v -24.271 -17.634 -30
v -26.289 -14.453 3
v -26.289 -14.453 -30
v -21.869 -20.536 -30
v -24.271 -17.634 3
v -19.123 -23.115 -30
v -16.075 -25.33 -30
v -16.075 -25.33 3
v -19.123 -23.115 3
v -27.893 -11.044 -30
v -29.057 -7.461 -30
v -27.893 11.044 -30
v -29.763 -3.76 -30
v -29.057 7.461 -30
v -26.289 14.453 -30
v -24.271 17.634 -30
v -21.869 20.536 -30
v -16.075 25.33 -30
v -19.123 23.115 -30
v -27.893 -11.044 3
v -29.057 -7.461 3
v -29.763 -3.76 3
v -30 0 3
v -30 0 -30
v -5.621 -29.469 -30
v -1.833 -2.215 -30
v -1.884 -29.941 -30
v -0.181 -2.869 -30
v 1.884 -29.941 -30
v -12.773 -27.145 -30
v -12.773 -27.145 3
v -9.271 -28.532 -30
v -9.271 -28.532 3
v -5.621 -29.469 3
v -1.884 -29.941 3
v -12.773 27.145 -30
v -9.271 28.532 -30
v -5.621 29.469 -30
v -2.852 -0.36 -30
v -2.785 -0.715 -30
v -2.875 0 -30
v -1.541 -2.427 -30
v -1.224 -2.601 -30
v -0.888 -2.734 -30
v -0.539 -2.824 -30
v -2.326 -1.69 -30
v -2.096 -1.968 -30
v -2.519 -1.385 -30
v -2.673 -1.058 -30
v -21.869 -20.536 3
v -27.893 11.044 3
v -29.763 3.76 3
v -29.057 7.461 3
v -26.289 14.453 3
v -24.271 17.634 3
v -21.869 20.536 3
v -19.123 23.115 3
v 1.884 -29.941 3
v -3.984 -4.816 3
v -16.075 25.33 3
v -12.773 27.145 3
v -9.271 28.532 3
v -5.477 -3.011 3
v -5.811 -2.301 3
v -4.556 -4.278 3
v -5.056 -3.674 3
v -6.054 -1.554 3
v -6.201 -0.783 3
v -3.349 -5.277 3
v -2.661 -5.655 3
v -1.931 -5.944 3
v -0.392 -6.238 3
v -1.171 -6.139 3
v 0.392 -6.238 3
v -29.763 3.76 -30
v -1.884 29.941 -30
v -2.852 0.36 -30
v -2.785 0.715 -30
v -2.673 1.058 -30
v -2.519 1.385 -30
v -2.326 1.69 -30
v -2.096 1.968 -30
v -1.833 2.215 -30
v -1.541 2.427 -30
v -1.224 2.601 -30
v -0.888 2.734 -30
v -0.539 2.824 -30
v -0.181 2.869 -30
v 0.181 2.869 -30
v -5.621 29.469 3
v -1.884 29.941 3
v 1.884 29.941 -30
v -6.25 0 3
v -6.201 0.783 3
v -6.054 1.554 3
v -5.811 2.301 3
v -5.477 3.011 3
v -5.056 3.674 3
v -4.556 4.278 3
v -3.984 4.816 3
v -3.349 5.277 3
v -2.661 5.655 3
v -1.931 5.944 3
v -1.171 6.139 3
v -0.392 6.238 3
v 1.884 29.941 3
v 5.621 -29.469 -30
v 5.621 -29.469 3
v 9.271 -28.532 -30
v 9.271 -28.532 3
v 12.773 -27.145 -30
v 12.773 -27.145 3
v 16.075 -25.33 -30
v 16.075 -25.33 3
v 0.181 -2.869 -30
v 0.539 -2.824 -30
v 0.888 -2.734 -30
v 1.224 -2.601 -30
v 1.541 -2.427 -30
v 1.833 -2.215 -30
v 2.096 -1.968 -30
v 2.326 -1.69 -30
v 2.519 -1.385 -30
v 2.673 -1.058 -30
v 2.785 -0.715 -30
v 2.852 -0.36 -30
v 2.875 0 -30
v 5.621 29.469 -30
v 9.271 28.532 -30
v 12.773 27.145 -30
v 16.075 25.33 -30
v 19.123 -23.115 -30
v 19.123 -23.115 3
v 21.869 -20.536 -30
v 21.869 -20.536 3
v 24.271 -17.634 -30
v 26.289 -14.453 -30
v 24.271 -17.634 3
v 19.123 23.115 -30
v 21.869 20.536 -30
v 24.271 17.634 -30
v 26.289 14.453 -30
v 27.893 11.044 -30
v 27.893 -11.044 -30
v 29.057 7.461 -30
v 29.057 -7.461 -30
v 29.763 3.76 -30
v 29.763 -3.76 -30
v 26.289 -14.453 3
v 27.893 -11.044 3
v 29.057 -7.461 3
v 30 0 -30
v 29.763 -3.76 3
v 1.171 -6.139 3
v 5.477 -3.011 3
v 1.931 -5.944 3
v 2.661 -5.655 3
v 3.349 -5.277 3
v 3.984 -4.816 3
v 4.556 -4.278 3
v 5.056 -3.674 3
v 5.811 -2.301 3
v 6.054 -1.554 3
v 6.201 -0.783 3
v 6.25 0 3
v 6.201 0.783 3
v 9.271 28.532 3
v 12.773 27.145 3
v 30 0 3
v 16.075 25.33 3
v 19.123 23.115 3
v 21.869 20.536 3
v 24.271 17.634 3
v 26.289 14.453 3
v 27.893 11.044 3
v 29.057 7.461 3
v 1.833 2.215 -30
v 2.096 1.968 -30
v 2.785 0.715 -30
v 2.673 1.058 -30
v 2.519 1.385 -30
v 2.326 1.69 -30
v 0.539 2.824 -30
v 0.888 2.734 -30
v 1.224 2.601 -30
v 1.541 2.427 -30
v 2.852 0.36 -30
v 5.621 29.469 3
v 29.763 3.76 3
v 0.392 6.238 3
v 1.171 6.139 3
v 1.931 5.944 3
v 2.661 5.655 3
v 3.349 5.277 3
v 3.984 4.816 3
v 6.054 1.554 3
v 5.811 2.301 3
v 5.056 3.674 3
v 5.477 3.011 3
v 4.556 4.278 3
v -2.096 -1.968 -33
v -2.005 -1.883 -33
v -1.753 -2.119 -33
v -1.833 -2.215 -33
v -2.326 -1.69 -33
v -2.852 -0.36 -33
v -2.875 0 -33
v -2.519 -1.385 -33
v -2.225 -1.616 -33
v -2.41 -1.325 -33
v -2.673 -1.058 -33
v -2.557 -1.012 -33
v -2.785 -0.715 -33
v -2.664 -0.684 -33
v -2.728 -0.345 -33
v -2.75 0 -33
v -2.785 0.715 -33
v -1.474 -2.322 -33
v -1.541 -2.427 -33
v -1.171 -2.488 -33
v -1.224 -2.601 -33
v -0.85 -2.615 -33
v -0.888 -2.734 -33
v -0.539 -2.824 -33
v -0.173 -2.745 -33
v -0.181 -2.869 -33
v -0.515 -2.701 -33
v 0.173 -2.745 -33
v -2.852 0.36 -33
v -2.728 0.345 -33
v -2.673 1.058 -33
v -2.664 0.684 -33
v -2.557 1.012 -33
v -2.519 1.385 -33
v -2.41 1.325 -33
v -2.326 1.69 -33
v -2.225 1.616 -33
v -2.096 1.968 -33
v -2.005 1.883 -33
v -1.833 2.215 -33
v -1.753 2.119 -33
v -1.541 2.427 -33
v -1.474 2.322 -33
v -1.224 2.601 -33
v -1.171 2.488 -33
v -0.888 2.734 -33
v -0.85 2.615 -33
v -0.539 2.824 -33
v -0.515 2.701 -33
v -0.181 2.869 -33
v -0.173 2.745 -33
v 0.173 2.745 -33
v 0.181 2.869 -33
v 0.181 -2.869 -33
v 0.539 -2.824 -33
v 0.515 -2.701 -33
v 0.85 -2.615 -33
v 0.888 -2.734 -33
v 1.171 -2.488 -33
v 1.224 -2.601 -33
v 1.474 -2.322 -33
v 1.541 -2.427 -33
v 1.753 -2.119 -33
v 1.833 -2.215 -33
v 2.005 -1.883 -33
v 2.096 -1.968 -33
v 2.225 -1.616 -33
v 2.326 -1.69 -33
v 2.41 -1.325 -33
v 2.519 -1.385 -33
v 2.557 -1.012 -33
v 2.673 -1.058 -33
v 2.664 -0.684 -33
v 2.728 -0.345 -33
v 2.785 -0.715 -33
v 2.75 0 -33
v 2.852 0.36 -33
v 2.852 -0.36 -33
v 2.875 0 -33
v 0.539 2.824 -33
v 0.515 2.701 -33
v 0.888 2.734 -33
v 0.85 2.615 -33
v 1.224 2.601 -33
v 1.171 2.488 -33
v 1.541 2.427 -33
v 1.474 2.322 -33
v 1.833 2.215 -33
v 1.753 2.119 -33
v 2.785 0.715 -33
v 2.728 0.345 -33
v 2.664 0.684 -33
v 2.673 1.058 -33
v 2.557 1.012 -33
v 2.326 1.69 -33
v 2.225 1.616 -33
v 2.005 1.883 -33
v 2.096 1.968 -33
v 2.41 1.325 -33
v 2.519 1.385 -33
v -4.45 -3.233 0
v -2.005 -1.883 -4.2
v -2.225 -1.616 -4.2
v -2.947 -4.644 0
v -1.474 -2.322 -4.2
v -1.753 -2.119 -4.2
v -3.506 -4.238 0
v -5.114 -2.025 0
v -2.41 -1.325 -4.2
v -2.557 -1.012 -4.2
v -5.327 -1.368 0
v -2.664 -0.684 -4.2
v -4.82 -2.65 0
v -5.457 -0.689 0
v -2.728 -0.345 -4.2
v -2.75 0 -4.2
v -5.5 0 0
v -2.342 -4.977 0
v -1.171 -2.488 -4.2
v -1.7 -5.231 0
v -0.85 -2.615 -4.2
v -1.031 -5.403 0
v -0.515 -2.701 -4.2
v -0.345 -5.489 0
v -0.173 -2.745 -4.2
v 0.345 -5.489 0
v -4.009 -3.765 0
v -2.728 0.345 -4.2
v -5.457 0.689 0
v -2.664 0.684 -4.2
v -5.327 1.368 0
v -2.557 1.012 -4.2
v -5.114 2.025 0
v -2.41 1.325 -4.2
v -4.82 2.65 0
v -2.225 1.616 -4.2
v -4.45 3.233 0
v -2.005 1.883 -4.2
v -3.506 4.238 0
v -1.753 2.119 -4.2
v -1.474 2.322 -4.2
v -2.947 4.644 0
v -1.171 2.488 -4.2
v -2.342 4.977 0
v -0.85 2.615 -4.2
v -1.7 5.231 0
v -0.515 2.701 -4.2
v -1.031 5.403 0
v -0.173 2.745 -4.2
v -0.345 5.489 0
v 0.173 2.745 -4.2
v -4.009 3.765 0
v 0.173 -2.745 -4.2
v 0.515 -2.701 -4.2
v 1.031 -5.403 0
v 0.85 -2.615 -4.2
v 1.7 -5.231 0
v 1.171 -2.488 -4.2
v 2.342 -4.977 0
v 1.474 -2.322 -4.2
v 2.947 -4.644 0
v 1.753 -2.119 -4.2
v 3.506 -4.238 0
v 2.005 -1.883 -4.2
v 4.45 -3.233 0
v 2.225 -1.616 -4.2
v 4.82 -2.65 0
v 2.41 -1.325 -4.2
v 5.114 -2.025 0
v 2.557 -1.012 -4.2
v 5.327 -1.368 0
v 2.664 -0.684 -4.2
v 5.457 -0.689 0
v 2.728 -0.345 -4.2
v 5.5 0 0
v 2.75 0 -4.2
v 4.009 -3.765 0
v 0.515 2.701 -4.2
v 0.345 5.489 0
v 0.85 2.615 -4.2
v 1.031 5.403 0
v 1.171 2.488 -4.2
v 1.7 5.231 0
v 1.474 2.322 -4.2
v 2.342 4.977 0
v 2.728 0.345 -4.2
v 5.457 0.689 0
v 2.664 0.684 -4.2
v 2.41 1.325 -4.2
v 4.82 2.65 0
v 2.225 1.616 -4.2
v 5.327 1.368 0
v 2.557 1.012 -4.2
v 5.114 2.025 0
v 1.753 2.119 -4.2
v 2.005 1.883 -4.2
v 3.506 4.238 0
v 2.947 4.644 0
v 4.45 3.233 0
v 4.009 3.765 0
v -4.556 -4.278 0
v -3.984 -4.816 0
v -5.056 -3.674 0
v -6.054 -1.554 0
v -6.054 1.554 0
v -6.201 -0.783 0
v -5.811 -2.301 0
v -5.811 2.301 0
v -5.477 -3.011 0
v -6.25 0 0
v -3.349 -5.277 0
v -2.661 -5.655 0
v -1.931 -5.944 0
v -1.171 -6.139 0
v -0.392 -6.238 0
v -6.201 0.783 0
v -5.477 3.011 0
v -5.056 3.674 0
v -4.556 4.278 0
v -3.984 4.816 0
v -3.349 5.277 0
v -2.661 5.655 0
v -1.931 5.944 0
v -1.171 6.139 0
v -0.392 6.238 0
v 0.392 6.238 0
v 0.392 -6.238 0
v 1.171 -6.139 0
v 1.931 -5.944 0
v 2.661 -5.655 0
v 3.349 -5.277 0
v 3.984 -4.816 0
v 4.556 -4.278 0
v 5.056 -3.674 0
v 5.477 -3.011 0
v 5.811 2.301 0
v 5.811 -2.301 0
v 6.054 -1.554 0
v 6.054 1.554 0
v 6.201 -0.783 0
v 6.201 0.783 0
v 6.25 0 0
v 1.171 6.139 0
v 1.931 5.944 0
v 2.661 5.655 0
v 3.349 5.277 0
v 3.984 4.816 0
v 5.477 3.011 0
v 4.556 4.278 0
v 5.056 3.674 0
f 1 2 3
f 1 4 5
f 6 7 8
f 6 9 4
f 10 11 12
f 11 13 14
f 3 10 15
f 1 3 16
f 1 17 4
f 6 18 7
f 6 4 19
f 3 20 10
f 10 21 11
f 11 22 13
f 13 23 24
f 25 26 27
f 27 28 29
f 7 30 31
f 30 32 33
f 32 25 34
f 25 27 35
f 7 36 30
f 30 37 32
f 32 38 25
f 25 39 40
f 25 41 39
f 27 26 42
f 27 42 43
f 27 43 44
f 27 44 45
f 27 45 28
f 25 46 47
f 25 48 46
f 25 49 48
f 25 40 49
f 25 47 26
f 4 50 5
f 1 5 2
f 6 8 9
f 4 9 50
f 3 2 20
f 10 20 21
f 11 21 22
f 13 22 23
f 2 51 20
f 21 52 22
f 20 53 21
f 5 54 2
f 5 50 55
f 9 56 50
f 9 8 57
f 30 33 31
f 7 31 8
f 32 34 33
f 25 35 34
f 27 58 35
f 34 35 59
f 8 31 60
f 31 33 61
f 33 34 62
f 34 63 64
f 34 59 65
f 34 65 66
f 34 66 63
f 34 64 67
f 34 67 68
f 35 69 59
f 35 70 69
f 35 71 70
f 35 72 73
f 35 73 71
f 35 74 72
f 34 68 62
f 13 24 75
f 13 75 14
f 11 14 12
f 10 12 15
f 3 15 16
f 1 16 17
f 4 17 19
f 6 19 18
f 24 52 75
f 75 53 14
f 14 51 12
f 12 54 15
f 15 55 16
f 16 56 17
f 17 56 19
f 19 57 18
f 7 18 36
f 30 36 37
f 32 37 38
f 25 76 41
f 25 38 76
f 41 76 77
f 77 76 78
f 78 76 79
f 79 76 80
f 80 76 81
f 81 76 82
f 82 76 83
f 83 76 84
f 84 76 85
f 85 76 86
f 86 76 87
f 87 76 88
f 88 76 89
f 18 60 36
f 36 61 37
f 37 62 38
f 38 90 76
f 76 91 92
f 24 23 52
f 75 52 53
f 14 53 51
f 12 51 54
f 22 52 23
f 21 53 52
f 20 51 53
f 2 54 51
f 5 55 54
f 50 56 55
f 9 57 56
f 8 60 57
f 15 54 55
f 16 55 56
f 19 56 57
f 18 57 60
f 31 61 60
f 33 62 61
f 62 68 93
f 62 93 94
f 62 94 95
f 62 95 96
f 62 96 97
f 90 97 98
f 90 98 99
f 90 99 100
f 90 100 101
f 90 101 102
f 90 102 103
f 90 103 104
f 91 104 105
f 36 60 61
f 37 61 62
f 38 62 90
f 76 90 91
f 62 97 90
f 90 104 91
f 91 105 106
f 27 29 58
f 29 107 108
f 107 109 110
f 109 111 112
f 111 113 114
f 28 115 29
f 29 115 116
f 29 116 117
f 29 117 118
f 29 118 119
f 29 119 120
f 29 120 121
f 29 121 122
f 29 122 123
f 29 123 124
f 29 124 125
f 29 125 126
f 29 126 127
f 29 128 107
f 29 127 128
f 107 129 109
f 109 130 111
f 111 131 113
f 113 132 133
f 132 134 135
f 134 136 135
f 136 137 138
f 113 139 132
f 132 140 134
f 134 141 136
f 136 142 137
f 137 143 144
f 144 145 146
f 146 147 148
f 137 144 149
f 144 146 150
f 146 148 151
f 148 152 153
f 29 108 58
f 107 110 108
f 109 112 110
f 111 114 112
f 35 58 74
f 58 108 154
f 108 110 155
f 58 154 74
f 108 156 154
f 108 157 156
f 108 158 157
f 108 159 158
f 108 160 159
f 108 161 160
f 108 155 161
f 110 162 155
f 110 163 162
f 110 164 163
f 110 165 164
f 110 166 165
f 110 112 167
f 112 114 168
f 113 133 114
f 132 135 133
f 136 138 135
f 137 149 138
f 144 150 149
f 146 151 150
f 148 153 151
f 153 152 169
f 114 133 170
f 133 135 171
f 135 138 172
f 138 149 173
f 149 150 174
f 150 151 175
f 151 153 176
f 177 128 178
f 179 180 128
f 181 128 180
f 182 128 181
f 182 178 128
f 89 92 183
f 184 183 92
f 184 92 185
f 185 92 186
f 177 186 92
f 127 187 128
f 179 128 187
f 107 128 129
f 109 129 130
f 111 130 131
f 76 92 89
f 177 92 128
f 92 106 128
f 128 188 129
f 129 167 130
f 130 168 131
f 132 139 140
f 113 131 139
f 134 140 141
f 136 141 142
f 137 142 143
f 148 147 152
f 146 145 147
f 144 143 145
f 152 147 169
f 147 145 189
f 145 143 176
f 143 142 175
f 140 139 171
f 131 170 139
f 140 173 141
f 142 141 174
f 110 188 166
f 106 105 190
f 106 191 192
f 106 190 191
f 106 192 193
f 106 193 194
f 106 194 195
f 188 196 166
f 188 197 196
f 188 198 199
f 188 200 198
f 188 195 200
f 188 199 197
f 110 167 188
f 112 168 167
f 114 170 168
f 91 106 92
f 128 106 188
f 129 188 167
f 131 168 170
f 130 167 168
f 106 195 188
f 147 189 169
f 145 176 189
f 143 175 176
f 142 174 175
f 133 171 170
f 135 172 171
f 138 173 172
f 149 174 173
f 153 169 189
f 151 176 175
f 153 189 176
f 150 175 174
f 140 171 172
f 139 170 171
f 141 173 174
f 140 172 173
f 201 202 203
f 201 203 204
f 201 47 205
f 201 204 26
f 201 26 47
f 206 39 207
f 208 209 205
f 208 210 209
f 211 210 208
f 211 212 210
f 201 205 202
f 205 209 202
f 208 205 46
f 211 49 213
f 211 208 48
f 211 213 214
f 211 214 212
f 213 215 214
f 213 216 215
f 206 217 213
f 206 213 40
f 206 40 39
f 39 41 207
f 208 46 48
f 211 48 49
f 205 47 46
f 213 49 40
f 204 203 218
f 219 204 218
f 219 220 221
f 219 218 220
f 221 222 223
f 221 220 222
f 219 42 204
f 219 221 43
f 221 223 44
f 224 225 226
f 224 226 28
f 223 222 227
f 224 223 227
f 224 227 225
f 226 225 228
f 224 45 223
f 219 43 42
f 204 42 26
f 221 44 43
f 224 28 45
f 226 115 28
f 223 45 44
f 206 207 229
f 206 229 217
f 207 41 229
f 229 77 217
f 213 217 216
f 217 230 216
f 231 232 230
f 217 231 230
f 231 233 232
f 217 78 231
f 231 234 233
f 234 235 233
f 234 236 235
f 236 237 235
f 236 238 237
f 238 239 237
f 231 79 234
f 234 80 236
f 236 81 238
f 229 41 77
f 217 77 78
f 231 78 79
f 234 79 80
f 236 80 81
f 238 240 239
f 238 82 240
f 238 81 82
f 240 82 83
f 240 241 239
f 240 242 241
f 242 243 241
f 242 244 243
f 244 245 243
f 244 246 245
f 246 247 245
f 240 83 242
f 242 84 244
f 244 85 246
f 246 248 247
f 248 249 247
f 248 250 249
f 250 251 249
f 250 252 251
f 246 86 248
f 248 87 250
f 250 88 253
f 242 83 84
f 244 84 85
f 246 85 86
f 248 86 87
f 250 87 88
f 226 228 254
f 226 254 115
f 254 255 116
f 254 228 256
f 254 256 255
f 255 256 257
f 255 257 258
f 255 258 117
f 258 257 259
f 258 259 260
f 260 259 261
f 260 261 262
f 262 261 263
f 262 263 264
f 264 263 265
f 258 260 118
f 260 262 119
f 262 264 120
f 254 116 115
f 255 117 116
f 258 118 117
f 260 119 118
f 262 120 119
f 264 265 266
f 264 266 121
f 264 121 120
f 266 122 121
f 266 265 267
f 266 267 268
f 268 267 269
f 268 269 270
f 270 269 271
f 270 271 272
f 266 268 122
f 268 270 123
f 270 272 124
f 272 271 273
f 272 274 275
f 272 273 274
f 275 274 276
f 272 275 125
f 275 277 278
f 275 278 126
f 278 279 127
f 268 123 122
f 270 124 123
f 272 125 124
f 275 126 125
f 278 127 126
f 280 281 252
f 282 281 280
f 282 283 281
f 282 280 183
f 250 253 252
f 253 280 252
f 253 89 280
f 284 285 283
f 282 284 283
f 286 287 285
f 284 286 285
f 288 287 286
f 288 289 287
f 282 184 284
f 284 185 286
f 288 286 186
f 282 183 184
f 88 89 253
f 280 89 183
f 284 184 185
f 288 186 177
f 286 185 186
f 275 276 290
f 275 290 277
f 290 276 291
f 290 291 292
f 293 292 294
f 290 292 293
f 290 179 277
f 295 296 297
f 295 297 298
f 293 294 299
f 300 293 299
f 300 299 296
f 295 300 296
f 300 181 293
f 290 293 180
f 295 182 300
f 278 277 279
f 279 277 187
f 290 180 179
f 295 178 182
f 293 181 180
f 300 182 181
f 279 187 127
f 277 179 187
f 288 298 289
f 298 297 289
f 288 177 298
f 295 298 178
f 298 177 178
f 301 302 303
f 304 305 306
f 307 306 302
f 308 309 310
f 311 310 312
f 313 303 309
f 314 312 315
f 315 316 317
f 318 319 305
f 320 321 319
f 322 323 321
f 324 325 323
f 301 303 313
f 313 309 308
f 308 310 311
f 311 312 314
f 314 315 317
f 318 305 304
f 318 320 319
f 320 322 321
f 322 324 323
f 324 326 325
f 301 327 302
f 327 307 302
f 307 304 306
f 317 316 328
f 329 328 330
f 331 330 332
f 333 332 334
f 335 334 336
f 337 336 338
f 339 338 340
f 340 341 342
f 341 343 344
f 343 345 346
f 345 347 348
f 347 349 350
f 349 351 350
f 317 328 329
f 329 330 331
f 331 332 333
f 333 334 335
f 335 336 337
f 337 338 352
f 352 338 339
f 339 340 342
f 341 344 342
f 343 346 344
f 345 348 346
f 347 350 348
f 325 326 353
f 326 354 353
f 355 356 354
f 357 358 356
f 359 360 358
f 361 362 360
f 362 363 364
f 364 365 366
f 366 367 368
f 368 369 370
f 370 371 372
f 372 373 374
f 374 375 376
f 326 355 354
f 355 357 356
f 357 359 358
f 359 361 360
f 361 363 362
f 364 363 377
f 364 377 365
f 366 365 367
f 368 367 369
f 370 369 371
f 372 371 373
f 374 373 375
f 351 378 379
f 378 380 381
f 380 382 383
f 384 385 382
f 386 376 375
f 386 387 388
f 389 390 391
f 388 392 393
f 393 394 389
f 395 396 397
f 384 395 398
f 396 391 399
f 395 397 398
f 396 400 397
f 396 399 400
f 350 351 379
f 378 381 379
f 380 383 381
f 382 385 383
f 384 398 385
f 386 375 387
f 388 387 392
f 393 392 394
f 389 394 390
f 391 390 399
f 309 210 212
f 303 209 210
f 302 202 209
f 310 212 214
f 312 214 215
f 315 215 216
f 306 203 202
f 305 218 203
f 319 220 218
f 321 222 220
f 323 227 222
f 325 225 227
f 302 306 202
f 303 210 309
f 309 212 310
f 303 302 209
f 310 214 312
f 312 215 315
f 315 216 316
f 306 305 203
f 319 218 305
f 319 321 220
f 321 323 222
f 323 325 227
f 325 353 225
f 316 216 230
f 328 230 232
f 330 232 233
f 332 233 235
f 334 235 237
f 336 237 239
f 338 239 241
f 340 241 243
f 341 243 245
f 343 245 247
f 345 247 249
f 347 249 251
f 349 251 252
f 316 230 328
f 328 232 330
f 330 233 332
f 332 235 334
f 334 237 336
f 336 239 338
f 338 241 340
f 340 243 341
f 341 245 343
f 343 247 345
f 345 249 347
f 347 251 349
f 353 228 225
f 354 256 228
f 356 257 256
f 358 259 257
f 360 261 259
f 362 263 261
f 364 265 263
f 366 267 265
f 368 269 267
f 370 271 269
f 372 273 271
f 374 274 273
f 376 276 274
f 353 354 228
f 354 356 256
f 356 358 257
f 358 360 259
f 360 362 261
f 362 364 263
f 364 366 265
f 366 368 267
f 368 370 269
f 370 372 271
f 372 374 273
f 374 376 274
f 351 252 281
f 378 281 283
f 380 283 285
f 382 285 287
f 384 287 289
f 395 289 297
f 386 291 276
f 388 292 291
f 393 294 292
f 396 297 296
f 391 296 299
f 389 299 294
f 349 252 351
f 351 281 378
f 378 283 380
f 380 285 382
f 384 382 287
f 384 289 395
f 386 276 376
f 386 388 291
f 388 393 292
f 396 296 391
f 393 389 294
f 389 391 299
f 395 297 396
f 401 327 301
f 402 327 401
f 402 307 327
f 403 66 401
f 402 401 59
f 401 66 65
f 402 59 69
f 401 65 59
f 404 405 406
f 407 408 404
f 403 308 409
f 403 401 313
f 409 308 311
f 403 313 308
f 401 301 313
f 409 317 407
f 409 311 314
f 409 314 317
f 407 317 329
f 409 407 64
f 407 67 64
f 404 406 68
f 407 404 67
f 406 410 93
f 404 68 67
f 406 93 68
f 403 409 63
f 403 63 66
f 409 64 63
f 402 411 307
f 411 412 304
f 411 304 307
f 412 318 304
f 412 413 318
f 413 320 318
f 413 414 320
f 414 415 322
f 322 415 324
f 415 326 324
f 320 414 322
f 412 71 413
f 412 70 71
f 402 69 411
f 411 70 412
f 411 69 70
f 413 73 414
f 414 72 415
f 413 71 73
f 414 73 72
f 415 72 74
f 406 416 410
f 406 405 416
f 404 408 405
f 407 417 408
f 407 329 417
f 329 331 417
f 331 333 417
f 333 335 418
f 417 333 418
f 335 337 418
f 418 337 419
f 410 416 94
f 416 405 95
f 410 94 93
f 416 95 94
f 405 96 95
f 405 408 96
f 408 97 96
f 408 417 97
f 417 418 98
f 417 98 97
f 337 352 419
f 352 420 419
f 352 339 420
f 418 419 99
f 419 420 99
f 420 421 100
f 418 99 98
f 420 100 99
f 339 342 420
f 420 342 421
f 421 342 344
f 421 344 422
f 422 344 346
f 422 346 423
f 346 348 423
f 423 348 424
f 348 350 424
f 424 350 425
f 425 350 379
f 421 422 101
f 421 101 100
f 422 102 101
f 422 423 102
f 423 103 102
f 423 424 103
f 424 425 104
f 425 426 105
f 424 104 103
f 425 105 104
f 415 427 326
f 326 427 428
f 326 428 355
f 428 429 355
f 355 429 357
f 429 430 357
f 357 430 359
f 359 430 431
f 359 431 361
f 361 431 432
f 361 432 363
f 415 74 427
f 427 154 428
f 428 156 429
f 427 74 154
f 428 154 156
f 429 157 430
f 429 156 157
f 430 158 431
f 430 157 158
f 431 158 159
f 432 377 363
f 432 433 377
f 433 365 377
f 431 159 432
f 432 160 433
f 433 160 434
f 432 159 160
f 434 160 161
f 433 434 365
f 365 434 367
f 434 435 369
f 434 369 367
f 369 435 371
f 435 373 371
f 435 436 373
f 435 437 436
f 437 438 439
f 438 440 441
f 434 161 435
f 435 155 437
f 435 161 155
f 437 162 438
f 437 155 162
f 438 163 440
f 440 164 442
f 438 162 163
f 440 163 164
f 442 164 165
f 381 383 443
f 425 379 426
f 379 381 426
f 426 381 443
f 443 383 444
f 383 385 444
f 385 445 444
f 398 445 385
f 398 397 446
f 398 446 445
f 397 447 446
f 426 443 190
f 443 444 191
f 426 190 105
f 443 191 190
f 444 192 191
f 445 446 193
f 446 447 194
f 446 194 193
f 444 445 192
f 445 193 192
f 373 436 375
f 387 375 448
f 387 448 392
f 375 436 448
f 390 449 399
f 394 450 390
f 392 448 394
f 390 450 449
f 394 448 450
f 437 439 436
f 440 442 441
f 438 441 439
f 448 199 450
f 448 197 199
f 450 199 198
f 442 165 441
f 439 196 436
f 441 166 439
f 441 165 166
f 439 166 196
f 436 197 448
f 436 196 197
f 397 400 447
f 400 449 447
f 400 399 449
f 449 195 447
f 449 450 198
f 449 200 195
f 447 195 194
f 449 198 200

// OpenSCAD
$fn = 50;


difference() {
	union() {
		translate(v = [0, 0, -30.0000000000]) {
			cylinder(h = 33, r = 30.0000000000);
		}
		#translate(v = [0, 0, -33.0000000000]) {
			cylinder(h = 33, r = 2.8750000000);
		}
	}
	union() {
		translate(v = [0, 0, 0]) {
			rotate(a = [0, 0, 0]) {
				difference() {
					union() {
						translate(v = [0, 0, -33.0000000000]) {
							cylinder(h = 33, r = 2.2500000000);
						}
						translate(v = [0, 0, -4.2000000000]) {
							cylinder(h = 4.2000000000, r1 = 2.7500000000, r2 = 5.5000000000);
						}
						translate(v = [0, 0, -33.0000000000]) {
							cylinder(h = 33, r = 2.7500000000);
						}
						translate(v = [0, 0, -33.0000000000]) {
							cylinder(h = 33, r = 2.2500000000);
						}
					}
					union();
				}
			}
		}
		#cylinder(h = 3, r = 6.2500000000);
	}
}
